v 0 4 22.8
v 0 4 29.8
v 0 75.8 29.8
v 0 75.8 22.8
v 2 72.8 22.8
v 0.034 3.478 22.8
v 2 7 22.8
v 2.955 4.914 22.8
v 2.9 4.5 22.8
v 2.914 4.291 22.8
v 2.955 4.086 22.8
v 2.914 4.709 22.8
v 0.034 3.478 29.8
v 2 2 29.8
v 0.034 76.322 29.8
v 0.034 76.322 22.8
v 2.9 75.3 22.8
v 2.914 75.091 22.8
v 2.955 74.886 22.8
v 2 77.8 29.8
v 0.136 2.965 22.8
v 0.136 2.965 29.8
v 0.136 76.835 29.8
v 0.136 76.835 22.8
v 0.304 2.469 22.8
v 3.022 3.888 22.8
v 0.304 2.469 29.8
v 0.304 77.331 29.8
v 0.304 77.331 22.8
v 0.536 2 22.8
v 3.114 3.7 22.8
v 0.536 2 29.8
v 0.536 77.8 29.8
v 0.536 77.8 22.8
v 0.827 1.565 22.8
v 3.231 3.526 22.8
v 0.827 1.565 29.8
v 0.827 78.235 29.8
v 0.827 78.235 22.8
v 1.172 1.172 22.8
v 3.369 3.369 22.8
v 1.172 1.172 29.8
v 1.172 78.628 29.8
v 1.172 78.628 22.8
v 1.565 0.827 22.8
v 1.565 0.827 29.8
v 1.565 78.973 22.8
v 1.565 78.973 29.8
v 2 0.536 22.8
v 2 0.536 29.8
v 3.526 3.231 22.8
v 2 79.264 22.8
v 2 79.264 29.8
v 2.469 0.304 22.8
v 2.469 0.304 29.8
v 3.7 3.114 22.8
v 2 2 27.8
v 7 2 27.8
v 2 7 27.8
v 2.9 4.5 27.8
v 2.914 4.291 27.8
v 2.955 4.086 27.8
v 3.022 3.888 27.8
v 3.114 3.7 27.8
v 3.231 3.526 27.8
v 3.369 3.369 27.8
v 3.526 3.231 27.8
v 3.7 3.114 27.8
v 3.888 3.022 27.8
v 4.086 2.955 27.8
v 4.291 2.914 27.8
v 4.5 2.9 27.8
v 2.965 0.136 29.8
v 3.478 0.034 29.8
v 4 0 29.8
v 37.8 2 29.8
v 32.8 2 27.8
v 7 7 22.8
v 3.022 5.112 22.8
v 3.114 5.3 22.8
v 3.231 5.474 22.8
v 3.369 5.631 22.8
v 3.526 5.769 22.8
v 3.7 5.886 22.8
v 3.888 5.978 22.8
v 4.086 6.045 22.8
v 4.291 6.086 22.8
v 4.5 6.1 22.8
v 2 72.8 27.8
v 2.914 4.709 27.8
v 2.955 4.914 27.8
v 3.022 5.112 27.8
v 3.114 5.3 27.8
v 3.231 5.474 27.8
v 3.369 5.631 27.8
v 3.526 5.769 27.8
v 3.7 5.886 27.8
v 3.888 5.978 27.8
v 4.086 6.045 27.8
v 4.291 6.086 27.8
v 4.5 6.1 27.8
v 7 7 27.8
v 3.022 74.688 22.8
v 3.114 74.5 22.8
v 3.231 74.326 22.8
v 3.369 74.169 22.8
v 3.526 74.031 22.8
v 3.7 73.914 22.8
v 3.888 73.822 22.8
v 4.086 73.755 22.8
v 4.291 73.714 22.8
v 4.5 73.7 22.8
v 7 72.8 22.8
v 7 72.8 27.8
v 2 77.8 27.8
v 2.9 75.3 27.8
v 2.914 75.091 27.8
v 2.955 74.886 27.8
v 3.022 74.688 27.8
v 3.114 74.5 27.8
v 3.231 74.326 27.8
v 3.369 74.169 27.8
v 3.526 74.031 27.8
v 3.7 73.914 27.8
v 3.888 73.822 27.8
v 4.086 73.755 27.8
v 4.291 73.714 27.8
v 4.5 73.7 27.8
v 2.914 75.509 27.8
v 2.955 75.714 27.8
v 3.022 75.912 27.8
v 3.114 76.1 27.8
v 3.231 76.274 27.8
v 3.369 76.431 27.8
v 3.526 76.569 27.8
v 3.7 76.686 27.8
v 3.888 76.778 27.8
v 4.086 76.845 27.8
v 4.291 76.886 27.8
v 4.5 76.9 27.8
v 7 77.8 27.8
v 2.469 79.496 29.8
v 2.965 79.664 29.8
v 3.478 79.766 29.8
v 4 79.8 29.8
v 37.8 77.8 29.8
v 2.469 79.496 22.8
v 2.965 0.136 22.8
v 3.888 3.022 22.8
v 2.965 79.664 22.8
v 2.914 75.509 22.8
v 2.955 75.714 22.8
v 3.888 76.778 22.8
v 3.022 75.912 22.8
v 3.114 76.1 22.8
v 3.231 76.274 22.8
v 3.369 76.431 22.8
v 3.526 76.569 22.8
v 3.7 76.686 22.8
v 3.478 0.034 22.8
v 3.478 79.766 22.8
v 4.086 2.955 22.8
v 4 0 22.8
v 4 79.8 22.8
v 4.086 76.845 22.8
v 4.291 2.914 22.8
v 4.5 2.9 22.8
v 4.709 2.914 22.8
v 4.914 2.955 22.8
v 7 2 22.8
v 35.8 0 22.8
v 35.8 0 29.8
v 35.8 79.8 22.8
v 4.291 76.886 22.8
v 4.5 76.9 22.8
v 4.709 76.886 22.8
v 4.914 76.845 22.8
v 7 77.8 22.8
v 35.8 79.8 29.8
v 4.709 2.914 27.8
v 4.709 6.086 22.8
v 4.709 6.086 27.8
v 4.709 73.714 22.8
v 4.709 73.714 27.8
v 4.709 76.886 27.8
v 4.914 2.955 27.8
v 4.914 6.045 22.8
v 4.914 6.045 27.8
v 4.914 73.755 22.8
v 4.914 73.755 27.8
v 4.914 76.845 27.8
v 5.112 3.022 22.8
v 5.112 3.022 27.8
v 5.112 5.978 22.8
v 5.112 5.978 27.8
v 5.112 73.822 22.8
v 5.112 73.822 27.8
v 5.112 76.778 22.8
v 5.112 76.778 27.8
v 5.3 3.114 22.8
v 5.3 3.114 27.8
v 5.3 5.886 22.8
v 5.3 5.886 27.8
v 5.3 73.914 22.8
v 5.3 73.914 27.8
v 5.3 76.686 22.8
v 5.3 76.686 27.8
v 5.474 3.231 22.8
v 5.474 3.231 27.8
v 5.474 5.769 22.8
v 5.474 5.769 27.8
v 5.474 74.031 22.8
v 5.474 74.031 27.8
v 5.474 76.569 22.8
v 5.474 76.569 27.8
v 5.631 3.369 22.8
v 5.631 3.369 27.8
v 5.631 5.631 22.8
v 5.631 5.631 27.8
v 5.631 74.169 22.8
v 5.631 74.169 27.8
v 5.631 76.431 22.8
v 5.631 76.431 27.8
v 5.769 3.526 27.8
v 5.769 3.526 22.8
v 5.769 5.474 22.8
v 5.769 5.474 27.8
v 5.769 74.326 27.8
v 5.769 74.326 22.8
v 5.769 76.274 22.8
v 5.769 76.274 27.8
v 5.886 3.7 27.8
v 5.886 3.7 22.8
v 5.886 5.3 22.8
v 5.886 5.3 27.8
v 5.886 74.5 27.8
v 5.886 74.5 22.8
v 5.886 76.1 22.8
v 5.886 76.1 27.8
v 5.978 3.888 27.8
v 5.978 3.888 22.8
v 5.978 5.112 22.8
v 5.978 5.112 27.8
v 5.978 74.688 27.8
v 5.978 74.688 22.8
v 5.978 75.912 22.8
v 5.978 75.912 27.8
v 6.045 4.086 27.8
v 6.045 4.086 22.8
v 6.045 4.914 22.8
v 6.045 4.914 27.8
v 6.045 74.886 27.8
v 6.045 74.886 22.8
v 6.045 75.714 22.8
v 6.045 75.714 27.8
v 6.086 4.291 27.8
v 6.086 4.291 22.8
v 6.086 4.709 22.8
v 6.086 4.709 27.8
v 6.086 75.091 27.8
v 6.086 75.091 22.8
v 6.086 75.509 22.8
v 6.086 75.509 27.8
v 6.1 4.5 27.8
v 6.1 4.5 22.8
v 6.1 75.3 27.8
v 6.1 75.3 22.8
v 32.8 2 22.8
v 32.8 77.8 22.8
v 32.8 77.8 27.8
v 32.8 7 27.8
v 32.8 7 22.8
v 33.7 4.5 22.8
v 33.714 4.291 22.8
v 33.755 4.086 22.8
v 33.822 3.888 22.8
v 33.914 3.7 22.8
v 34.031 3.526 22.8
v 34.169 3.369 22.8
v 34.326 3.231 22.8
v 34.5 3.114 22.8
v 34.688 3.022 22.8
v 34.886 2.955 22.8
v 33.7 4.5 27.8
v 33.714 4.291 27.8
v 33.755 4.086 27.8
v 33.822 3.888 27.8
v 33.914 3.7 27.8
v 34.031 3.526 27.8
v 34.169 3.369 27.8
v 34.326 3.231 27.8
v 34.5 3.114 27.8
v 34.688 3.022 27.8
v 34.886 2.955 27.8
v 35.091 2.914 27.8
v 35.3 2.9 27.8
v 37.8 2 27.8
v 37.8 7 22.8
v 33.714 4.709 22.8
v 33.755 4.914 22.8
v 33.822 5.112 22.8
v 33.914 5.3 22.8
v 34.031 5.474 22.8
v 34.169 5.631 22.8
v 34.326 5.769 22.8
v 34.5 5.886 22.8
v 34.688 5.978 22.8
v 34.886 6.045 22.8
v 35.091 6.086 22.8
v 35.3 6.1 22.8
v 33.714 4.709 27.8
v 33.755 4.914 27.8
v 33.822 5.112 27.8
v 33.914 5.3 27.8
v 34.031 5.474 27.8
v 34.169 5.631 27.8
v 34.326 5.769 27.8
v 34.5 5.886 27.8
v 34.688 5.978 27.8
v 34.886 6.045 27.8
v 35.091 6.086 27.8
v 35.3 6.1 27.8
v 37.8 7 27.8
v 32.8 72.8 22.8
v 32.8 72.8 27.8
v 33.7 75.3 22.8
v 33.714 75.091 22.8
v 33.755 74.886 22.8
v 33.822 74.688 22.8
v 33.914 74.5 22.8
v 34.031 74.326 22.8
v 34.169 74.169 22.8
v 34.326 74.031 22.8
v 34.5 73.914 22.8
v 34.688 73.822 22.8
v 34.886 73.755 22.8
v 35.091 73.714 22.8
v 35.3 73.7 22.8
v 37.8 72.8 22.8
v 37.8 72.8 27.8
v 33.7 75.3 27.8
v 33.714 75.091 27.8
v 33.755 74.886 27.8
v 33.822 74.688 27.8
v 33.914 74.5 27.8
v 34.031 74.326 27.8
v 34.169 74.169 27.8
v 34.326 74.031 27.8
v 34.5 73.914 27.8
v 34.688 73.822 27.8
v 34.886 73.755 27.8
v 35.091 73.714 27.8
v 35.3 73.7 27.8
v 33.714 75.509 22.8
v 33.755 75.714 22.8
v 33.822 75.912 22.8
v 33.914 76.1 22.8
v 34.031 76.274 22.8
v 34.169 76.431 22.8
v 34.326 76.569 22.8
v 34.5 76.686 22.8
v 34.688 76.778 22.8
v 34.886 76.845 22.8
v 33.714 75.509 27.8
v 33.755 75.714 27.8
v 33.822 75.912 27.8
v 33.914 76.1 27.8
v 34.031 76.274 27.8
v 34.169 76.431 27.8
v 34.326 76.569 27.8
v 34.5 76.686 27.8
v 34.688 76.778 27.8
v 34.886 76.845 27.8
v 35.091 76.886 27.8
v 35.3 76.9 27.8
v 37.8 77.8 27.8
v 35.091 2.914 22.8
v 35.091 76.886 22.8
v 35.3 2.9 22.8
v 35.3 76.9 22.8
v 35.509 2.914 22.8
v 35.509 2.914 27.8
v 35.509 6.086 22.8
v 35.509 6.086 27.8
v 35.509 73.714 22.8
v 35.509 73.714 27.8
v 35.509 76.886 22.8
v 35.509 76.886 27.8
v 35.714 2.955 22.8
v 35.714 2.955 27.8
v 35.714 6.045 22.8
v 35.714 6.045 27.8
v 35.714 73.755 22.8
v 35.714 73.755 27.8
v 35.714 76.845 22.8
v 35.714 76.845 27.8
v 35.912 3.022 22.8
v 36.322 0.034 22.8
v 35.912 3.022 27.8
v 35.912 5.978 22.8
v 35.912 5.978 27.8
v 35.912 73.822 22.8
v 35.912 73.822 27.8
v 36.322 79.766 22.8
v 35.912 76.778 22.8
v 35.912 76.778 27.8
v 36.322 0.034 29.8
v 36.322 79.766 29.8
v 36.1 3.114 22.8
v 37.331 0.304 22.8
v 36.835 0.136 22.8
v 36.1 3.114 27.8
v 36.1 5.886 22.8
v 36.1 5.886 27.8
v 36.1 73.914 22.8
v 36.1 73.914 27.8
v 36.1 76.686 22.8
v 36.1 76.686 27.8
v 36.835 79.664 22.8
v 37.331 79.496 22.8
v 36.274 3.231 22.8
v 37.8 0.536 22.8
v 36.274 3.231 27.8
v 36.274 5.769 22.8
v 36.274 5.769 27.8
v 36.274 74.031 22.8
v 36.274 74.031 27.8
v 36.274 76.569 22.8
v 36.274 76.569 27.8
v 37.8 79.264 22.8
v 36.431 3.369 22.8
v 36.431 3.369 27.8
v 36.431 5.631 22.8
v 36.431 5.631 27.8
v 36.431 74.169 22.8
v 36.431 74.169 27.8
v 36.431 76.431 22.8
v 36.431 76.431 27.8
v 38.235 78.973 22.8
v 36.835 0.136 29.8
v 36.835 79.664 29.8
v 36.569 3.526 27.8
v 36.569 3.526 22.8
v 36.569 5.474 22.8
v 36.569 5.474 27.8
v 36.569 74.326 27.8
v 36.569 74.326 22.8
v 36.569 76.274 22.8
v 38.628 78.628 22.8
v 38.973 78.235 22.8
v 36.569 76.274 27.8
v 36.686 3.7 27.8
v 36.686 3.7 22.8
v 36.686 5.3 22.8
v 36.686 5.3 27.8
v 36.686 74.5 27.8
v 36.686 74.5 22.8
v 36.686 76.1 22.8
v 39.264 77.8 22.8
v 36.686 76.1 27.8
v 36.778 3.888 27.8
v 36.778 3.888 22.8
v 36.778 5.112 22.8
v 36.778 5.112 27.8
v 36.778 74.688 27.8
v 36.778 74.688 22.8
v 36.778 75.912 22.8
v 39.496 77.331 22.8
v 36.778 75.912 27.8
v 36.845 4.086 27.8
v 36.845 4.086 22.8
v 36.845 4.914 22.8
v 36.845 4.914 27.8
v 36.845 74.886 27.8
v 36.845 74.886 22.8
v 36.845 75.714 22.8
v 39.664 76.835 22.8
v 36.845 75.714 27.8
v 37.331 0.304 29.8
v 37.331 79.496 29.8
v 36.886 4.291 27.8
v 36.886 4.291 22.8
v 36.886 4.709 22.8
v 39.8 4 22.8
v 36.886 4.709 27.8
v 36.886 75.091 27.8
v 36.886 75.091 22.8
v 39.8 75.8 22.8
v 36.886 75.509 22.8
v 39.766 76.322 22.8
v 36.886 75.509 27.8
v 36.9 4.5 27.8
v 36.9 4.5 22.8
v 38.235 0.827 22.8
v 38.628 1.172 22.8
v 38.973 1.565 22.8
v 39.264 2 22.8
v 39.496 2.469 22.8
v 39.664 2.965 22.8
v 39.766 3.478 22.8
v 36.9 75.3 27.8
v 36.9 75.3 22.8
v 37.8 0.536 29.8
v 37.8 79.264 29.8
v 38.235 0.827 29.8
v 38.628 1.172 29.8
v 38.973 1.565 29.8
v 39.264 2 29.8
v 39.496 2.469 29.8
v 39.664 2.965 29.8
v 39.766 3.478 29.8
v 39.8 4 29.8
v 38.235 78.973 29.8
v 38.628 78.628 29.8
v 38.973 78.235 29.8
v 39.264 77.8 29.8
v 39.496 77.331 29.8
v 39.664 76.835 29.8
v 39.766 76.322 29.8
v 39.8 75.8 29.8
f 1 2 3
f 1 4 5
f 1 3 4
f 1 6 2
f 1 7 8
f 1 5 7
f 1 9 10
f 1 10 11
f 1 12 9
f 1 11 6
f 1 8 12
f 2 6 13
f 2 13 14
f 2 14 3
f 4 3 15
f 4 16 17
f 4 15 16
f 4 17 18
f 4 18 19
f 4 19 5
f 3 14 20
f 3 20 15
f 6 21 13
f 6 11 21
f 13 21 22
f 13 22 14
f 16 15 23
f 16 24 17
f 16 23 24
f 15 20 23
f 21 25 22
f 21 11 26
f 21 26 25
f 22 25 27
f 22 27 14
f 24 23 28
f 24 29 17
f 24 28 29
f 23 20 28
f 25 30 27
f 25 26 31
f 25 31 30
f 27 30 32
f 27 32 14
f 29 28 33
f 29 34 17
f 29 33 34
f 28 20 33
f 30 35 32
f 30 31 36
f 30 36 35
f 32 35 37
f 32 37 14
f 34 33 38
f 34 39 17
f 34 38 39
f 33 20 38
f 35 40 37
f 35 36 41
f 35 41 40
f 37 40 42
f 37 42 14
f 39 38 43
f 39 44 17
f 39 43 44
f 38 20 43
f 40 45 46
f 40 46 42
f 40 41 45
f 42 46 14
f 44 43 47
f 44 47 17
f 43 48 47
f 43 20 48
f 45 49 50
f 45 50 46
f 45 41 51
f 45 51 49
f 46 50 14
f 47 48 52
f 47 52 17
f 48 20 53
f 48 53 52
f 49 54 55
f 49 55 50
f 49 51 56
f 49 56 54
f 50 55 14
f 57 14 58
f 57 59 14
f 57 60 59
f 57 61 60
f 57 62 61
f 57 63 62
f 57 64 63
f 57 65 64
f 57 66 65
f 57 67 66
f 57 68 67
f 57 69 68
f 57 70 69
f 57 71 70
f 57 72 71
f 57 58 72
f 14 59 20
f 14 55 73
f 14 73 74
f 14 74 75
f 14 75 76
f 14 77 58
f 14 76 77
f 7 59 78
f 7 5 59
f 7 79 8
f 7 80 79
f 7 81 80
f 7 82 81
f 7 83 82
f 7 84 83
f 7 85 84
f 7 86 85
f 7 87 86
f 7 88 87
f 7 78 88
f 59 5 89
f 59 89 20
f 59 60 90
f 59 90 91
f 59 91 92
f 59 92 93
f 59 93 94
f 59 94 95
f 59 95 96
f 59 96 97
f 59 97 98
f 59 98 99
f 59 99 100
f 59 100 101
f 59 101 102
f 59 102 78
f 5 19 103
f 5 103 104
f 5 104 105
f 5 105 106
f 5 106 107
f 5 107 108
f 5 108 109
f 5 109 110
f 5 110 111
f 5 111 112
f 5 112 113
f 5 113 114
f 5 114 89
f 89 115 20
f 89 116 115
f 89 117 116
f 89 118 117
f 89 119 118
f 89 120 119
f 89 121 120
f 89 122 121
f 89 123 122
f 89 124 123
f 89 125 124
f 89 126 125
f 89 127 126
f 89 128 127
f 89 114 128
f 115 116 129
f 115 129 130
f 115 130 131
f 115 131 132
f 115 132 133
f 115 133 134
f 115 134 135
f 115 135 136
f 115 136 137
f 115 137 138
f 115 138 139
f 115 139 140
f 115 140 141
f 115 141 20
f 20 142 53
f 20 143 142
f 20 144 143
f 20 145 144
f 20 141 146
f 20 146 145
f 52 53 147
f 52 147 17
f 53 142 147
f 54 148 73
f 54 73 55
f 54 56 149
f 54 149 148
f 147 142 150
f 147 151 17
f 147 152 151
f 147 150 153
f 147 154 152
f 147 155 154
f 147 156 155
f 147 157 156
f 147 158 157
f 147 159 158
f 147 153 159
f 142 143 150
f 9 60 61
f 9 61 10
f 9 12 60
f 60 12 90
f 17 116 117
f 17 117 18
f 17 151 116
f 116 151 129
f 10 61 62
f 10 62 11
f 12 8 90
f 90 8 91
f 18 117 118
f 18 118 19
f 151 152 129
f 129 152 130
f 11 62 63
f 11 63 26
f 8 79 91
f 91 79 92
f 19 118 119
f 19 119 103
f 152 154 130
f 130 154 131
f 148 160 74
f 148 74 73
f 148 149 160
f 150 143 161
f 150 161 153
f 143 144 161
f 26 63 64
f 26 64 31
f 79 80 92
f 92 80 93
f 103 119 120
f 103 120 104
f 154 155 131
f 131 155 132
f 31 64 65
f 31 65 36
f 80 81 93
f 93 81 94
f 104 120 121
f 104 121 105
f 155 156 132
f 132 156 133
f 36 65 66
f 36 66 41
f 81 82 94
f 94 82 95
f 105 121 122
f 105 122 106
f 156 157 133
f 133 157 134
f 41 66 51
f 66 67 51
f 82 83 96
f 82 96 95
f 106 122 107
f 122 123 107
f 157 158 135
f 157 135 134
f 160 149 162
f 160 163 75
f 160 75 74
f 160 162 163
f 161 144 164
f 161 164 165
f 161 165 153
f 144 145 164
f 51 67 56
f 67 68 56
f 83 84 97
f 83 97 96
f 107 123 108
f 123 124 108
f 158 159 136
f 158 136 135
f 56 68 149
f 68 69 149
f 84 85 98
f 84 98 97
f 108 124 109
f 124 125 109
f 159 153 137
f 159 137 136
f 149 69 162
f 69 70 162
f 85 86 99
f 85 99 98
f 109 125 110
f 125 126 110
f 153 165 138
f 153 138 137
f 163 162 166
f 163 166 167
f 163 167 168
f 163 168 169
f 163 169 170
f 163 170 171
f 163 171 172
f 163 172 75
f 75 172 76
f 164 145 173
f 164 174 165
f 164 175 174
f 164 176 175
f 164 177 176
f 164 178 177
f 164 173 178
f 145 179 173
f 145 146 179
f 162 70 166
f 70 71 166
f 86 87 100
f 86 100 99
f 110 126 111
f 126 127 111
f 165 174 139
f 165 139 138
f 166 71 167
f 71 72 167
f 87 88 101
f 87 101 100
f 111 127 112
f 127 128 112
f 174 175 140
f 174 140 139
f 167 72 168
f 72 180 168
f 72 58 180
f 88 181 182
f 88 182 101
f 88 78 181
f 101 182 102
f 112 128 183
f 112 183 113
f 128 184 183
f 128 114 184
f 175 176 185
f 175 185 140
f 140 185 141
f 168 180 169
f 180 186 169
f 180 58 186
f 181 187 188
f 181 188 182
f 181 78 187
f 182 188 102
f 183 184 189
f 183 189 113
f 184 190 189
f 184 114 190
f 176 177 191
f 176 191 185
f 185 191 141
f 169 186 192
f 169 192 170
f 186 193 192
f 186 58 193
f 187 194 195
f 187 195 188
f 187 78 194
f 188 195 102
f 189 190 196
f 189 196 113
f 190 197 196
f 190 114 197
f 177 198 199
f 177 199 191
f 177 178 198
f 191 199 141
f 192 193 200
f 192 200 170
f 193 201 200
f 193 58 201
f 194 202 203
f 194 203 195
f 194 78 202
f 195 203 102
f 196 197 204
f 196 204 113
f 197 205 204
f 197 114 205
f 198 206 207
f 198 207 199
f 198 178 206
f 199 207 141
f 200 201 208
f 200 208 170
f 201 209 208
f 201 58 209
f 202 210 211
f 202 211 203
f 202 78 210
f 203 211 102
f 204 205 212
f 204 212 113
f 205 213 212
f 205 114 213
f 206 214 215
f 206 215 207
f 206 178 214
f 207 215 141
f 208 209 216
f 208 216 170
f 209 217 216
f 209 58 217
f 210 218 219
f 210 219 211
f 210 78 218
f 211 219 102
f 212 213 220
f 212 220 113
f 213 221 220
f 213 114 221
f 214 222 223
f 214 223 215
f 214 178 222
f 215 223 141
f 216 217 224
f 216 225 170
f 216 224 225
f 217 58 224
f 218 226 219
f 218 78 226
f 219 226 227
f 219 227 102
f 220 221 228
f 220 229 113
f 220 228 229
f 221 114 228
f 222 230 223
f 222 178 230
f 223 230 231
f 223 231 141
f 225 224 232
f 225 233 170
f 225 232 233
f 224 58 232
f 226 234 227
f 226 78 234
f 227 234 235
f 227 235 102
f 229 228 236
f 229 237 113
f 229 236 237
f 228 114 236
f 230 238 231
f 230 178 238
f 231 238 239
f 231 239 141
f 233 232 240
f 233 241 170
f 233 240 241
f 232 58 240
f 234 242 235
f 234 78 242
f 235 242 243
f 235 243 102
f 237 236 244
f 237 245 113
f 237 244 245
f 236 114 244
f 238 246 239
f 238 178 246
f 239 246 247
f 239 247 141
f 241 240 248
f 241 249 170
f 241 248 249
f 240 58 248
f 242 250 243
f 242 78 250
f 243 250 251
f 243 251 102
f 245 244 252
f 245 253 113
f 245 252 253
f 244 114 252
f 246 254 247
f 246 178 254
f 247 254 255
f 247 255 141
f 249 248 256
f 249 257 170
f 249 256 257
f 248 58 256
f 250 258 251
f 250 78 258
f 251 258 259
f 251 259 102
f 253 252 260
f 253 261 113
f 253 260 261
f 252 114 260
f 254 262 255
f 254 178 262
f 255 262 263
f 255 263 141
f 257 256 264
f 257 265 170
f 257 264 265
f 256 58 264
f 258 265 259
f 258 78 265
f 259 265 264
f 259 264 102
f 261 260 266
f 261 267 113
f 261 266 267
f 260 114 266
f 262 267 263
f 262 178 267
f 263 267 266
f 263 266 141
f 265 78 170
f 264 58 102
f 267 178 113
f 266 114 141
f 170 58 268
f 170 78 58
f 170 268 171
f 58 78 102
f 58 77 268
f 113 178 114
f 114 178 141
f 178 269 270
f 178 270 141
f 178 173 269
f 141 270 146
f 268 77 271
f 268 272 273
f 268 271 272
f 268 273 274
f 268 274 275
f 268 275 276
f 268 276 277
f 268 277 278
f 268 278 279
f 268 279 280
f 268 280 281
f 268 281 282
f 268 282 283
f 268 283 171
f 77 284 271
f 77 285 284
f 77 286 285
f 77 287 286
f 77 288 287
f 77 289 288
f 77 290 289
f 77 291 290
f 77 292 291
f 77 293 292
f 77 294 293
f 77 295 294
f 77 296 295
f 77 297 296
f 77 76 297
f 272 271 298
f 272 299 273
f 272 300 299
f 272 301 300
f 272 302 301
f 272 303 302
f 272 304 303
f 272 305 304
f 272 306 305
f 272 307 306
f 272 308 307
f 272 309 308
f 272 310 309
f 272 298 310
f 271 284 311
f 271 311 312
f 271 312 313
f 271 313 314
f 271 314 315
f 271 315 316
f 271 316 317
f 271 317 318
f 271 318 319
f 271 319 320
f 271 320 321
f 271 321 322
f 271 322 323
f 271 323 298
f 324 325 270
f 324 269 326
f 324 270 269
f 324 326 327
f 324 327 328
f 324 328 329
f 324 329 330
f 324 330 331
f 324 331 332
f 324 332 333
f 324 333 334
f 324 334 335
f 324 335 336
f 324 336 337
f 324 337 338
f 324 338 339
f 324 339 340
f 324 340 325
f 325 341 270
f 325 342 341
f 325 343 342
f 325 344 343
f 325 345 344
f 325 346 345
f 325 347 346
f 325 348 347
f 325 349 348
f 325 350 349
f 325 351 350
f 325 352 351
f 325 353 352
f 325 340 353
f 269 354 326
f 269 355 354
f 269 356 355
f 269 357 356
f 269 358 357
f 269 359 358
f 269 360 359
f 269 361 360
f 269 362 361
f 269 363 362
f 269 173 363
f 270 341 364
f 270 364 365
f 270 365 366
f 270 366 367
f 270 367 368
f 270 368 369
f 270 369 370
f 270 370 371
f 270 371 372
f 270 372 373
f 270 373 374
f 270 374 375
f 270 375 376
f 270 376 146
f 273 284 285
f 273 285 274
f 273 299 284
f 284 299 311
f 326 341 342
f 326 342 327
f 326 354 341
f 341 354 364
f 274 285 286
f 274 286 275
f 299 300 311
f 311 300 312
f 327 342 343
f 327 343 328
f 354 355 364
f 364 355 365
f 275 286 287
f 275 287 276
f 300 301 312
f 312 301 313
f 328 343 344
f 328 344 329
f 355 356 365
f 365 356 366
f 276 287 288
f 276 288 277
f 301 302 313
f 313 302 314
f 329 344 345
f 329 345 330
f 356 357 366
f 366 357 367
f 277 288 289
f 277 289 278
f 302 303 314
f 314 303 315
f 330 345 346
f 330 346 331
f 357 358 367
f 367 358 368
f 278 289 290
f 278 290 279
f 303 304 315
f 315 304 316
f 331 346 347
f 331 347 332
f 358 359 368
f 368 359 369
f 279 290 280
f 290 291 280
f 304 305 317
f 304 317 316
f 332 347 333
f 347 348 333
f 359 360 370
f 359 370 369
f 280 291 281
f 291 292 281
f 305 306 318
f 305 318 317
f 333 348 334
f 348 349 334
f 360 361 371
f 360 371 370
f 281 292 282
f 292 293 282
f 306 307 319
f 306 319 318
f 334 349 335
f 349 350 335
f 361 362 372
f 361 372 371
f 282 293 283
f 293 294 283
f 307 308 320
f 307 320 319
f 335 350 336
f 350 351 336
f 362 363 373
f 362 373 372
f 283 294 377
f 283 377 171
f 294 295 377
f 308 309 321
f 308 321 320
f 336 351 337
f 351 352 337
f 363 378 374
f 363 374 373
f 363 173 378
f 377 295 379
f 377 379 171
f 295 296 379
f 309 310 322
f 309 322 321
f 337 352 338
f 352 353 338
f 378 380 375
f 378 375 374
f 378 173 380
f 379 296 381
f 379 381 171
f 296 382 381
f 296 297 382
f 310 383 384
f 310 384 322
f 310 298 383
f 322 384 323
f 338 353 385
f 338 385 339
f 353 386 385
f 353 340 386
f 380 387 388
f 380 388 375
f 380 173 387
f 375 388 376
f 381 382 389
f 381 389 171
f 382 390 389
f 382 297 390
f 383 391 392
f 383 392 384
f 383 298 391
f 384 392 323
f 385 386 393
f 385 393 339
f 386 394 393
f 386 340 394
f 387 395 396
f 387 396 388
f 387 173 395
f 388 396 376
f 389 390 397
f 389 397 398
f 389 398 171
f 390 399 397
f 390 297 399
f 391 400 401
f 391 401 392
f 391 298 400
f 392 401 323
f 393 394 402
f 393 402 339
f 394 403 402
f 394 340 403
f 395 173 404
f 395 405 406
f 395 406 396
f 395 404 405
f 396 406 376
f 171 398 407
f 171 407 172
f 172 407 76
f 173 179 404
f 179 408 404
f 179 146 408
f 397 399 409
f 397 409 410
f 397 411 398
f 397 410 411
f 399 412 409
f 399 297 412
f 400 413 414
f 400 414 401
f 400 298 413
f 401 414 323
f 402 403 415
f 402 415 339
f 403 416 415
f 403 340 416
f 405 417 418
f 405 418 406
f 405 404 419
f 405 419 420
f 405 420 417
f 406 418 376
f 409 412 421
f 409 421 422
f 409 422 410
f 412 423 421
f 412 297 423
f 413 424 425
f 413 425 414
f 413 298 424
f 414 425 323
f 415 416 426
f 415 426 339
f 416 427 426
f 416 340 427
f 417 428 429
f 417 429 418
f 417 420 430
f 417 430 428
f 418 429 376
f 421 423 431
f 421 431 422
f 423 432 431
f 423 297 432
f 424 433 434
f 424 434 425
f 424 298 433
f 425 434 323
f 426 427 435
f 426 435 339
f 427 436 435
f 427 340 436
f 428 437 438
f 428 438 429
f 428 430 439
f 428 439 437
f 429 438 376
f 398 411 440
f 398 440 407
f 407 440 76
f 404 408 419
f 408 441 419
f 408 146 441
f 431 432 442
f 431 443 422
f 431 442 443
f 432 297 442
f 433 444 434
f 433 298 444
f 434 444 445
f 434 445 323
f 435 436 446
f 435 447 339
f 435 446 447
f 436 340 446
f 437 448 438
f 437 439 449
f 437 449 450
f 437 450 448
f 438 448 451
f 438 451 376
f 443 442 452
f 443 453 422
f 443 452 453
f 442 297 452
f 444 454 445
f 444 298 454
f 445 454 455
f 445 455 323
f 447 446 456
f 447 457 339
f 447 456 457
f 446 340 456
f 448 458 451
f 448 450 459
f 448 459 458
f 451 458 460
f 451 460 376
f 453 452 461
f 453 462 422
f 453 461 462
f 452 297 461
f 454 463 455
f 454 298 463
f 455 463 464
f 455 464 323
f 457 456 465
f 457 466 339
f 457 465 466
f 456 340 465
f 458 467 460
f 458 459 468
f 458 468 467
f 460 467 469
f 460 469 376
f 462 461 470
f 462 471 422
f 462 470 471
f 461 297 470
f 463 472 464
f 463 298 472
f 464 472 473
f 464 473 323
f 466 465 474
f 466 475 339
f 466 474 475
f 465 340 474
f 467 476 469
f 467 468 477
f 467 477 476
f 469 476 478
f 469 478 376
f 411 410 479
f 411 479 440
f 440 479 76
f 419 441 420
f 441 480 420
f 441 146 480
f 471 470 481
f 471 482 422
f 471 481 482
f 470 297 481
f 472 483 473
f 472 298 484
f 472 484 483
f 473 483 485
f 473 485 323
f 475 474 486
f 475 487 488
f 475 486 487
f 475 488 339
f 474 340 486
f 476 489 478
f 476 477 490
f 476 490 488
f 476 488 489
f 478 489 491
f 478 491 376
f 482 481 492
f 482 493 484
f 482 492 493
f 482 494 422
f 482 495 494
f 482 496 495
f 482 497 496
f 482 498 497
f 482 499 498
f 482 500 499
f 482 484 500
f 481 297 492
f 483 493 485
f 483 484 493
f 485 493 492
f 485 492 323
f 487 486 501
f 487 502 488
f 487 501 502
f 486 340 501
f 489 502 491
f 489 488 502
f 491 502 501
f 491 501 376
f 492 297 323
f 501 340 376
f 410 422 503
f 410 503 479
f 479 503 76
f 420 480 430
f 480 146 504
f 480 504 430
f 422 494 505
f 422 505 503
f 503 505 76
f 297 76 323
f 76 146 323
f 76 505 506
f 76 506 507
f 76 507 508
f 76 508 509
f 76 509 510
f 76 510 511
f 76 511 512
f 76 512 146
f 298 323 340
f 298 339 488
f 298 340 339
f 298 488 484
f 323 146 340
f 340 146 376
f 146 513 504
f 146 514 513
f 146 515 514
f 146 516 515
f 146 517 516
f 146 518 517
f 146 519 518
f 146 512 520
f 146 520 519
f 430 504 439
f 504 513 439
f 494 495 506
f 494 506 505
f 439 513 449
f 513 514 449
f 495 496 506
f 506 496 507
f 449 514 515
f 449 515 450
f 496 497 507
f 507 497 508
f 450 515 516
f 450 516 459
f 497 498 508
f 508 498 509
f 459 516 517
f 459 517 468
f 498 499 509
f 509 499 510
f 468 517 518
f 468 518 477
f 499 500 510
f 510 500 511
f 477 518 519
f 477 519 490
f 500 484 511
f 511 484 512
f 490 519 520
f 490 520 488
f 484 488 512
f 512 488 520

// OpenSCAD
// Dilder Top Cover v2 — open border frame with square pillar screw posts
//
// No dome, no floor — just the perimeter wall ring + 4 corner pillar posts.
// Solid border all around (no wire notch).
//
// Export:
//   openscad -o top-cover-v2.3mf top-cover-v2.scad

$fn = 48;

// ---- Board (Olimex ESP32-S3-DevKit-Lipo) ----
board_len      = 56;
board_wid      = 28;
antenna_proj   = 6;

// ---- Waveshare 2.13" display ----
disp_len       = 65;
disp_wid       = 30;
disp_thk       = 5;

// ---- 1000 mAh battery ----
bat_len        = 52;
bat_wid        = 35;

// ---- Enclosure geometry ----
wall_thk       = 2;
plate_thk      = 2;
pillar         = 5;
slop           = 0.4;
bat_chamber_h  = 6;
disp_clear     = 1;
board_thk      = 1.6;
wroom_h        = 3.2;
top_gap        = 5;

screw_clr      = 3.2;

// ---- Rounding ----
case_corner_r  = 4;

// ---- Z layout ----
z_base_top     = plate_thk;
z_mid_bot      = z_base_top + bat_chamber_h;
z_mid_top      = z_mid_bot + plate_thk;
z_board_bot    = z_mid_top;
z_board_top    = z_board_bot + board_thk;
z_wroom_top    = z_board_top + wroom_h;
z_disp_bot     = z_wroom_top + disp_clear;
z_disp_top     = z_disp_bot + disp_thk;
base_wall_top  = z_disp_top + plate_thk;
z_cover_bot    = base_wall_top;
cover_h        = plate_thk + top_gap;

// ---- XY layout ----
inner_wid      = max(board_wid, disp_wid, bat_wid) + 2 * slop;
inner_len      = max(board_len + antenna_proj, disp_len + 2 * pillar, bat_len) + 2 * slop;
outer_wid      = inner_wid + 2 * wall_thk;
outer_len      = inner_len + 2 * wall_thk;

pillar_xy = [
    [wall_thk,                             wall_thk                            ],
    [outer_wid - wall_thk - pillar,        wall_thk                            ],
    [wall_thk,                             outer_len - wall_thk - pillar       ],
    [outer_wid - wall_thk - pillar,        outer_len - wall_thk - pillar       ],
];


// ============== SHARED ==============

module rounded_v_box(w, l, h, r, fn = 48) {
    hull() {
        for (x = [r, w - r])
            for (y = [r, l - r])
                translate([x, y, 0])
                    cylinder(r = r, h = h, $fn = fn);
    }
}


// ============== TOP COVER v2 ==============

module top_cover() {
    translate([0, 0, z_cover_bot])
    difference() {
        union() {
            // Outer wall ring — rounded vertical edges, flat top, open inside
            difference() {
                rounded_v_box(outer_wid, outer_len, cover_h, case_corner_r);
                translate([wall_thk, wall_thk, -0.1])
                    cube([inner_wid, inner_len, cover_h + 0.2]);
            }

            // Square pillar posts at 4 corners
            for (p = pillar_xy)
                translate([p[0], p[1], 0])
                    cube([pillar, pillar, cover_h]);
        }

        // Countersink at top of each pillar — plate_thk deep so windowed plate sits flush
        for (p = pillar_xy)
            translate([p[0], p[1], cover_h - plate_thk])
                cube([pillar, pillar, plate_thk + 0.1]);

        // Screw clearance holes through pillars
        for (p = pillar_xy) {
            cx = p[0] + pillar/2;
            cy = p[1] + pillar/2;
            translate([cx, cy, -0.1])
                cylinder(h = cover_h + 0.2, d = screw_clr);
        }
    }
}

top_cover();
